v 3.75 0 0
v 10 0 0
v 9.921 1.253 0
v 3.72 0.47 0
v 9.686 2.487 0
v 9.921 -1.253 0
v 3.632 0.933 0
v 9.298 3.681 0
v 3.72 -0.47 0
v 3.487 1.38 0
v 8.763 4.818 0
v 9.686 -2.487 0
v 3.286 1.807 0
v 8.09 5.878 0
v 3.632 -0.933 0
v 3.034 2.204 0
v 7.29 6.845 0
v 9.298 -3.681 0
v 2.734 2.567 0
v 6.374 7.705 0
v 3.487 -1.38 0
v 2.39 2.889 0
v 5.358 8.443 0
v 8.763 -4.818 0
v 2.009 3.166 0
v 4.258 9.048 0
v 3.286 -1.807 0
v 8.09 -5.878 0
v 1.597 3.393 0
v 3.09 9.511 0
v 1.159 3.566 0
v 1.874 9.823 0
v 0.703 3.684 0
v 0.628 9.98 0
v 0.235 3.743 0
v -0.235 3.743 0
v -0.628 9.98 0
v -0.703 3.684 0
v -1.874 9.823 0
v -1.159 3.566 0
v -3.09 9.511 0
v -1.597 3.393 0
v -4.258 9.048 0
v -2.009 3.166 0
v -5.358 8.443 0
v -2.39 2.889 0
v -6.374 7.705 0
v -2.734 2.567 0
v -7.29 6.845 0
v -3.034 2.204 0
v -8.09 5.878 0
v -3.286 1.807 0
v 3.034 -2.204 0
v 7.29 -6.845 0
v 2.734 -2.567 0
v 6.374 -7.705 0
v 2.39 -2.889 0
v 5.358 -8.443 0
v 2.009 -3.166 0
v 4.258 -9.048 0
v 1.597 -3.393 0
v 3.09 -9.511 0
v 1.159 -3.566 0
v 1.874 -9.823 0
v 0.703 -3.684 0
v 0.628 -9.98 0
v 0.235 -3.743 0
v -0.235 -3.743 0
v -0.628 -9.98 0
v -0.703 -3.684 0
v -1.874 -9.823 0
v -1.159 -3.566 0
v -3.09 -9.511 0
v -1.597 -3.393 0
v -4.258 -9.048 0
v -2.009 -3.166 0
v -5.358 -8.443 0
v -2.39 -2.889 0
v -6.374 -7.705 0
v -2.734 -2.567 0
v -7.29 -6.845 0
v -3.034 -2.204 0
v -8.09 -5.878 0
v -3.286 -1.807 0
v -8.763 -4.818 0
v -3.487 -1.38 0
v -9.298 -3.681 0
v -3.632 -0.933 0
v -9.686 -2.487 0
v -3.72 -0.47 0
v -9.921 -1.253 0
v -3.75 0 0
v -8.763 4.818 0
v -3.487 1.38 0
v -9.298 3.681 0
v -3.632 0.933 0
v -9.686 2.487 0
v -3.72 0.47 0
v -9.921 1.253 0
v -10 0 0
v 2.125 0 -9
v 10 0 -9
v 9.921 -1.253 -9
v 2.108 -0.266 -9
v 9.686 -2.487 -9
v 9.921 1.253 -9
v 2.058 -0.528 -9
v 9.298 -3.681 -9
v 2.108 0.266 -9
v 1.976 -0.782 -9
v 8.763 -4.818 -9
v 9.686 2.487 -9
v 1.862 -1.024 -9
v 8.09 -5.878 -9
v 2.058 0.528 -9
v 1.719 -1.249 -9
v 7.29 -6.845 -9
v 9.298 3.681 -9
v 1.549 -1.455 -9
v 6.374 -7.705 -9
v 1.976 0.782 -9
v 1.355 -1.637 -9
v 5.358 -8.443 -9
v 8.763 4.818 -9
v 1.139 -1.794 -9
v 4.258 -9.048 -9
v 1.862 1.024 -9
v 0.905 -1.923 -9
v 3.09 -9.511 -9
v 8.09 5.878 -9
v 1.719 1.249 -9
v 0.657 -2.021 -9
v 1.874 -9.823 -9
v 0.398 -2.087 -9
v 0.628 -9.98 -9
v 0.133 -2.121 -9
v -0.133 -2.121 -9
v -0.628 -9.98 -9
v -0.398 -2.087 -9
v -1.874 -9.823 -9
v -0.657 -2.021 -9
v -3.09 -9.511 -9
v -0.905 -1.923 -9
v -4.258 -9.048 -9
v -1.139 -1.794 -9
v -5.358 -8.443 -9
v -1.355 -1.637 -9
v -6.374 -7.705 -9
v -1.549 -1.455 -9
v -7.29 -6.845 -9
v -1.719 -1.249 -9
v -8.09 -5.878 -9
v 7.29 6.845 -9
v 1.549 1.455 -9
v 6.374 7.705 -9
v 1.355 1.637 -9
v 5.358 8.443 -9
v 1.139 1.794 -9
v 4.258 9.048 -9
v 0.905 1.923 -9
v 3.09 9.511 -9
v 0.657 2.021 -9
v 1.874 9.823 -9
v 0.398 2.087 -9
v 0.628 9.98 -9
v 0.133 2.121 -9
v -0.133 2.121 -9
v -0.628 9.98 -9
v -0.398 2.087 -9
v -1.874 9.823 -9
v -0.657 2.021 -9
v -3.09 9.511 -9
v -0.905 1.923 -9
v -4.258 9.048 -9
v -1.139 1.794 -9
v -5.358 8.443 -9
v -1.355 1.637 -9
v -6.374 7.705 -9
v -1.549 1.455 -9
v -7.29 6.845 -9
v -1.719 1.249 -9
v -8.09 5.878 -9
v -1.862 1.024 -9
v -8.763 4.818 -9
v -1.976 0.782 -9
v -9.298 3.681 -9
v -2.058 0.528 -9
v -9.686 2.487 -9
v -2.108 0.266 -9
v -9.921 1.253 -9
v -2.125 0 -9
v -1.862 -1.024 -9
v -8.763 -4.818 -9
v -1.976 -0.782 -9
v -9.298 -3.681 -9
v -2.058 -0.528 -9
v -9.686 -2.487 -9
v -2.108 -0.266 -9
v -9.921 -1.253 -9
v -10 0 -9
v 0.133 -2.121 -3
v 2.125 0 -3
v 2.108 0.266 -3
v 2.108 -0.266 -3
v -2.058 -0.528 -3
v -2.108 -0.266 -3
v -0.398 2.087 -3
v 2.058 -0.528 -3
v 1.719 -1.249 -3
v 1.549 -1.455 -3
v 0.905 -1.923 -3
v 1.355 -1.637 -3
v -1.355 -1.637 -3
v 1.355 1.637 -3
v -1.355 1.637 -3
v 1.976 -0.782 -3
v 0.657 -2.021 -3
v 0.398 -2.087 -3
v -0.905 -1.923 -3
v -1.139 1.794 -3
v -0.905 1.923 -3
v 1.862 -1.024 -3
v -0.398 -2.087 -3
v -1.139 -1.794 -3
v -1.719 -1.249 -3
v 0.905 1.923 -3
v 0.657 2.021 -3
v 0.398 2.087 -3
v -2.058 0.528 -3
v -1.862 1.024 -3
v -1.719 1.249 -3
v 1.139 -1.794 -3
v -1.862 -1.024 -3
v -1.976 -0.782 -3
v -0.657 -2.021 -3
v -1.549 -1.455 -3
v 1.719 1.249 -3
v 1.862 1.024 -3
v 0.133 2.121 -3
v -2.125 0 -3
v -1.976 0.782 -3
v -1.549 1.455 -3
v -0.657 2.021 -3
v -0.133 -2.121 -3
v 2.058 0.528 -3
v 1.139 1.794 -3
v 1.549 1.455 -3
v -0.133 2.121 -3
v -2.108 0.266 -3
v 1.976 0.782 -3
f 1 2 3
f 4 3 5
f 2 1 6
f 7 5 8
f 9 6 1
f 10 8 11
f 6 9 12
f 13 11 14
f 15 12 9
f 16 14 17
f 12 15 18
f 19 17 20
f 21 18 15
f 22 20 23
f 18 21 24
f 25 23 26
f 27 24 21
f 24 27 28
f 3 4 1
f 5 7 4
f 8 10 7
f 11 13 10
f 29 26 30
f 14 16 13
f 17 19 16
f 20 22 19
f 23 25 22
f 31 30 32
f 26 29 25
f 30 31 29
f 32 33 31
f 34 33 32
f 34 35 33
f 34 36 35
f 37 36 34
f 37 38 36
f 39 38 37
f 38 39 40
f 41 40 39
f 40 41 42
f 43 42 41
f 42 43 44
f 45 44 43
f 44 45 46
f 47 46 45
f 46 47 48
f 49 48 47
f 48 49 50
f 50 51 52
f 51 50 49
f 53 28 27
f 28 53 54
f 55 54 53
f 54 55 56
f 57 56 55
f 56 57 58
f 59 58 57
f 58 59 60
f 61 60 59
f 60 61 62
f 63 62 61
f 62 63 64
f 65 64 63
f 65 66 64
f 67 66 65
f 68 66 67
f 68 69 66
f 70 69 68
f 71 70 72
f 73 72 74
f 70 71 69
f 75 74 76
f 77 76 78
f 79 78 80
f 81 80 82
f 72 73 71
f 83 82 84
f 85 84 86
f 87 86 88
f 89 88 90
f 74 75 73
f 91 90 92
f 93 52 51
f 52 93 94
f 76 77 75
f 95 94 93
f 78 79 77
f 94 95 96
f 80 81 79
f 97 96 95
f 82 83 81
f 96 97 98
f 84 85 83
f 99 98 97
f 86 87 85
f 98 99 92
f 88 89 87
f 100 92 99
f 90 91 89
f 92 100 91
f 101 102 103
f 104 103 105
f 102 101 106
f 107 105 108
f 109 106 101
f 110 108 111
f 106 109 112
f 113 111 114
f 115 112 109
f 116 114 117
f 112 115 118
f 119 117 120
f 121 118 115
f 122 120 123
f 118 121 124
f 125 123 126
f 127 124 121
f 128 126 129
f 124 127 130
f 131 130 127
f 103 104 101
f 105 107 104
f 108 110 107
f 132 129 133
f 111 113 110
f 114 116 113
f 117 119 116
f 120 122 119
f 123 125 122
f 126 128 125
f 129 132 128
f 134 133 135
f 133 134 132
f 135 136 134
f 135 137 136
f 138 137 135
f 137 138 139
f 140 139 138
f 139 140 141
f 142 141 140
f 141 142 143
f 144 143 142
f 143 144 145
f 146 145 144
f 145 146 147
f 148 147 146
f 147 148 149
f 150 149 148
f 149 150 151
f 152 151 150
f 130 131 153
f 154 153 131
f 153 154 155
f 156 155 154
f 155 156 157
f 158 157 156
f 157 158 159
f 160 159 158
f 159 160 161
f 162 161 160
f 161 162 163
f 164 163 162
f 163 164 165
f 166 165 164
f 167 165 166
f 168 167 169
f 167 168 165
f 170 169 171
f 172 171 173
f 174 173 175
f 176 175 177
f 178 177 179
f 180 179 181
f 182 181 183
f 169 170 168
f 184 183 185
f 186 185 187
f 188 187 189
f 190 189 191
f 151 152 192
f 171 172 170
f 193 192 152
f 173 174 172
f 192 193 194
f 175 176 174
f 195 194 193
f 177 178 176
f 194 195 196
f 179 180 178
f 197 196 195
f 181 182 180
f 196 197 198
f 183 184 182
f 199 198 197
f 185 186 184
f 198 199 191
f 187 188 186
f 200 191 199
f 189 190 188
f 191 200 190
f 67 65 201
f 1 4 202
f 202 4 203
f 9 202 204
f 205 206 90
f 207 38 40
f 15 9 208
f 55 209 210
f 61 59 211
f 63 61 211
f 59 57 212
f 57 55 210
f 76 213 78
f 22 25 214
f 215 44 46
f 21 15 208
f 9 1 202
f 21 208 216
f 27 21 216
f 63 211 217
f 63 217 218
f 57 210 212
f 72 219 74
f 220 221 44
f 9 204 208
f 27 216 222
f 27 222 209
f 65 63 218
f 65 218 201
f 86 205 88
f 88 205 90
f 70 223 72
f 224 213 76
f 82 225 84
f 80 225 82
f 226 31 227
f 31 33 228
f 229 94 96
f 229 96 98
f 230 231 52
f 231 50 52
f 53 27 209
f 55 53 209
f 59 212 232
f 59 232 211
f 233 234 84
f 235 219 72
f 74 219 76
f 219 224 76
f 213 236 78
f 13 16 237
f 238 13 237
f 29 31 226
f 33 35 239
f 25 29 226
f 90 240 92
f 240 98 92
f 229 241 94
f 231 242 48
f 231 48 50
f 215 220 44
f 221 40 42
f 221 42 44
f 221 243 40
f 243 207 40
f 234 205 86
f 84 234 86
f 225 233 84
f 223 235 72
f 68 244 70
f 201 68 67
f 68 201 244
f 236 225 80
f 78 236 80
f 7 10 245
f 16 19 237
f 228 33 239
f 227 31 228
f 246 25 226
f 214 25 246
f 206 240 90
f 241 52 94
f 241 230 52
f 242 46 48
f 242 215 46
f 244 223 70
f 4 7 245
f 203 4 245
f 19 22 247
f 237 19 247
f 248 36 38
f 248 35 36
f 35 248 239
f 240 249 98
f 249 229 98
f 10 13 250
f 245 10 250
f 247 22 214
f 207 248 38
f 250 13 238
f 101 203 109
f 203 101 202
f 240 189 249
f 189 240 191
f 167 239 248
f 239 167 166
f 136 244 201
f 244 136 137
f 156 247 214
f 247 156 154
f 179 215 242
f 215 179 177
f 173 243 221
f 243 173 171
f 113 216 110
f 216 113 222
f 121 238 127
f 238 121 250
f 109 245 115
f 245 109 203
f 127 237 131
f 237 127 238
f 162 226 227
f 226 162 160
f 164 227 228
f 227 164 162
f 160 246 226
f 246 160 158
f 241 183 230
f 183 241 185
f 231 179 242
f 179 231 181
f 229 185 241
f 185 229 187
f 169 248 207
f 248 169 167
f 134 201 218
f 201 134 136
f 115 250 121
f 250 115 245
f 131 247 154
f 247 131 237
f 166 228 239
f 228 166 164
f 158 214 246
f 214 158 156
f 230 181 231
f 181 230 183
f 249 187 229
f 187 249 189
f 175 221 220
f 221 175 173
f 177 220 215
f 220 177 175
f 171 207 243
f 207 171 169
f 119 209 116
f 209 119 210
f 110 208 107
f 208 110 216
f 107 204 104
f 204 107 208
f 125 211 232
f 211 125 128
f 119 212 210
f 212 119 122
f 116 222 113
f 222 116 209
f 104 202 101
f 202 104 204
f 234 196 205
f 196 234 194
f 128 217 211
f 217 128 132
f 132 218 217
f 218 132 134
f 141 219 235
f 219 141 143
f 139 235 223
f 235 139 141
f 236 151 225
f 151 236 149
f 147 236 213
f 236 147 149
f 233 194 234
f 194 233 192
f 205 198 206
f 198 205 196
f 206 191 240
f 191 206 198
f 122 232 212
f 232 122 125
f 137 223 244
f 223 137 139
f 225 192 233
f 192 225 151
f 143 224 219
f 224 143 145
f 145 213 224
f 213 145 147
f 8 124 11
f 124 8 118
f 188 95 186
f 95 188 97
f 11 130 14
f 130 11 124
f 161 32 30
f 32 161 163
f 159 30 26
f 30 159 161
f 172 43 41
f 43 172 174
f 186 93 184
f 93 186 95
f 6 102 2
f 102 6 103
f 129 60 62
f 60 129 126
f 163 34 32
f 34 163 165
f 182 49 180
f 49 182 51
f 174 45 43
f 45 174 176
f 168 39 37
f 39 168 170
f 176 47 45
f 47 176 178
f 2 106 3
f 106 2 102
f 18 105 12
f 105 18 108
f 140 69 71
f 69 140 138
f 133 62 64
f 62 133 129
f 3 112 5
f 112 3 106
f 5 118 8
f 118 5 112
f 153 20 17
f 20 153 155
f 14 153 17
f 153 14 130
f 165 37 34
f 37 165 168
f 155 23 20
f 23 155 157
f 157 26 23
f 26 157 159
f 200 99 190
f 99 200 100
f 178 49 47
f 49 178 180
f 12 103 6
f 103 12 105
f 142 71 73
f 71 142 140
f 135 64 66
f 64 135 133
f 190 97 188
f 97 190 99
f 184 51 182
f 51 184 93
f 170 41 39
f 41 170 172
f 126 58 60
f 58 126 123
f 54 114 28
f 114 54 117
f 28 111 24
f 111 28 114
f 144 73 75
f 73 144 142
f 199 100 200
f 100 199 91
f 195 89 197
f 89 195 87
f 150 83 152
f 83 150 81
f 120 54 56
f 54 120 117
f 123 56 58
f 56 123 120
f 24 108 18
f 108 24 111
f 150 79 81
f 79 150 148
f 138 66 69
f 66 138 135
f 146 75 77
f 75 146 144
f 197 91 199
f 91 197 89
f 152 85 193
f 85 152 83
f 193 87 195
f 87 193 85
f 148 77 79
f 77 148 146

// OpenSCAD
$fn = 50;


difference() {
	union() {
		translate(v = [0, 0, -9.0000000000]) {
			cylinder(h = 9, r = 10.0000000000);
		}
		cylinder(h = 0, r = 13.0000000000);
	}
	union() {
		translate(v = [0, 0, 0]) {
			rotate(a = [0, 0, 0]) {
				difference() {
					union() {
						#translate(v = [0, 0, -9.0000000000]) {
							cylinder(h = 9, r = 2.0000000000);
						}
						#translate(v = [0, 0, -3]) {
							cylinder(h = 3, r = 10.0000000000, r1 = 2.1250000000, r2 = 3.7500000000);
						}
						#translate(v = [0, 0, -9.0000000000]) {
							cylinder(h = 9, r = 2.1250000000);
						}
						#translate(v = [0, 0, -9.0000000000]) {
							cylinder(h = 9, r = 2.0000000000);
						}
					}
					union();
				}
			}
		}
	}
}
